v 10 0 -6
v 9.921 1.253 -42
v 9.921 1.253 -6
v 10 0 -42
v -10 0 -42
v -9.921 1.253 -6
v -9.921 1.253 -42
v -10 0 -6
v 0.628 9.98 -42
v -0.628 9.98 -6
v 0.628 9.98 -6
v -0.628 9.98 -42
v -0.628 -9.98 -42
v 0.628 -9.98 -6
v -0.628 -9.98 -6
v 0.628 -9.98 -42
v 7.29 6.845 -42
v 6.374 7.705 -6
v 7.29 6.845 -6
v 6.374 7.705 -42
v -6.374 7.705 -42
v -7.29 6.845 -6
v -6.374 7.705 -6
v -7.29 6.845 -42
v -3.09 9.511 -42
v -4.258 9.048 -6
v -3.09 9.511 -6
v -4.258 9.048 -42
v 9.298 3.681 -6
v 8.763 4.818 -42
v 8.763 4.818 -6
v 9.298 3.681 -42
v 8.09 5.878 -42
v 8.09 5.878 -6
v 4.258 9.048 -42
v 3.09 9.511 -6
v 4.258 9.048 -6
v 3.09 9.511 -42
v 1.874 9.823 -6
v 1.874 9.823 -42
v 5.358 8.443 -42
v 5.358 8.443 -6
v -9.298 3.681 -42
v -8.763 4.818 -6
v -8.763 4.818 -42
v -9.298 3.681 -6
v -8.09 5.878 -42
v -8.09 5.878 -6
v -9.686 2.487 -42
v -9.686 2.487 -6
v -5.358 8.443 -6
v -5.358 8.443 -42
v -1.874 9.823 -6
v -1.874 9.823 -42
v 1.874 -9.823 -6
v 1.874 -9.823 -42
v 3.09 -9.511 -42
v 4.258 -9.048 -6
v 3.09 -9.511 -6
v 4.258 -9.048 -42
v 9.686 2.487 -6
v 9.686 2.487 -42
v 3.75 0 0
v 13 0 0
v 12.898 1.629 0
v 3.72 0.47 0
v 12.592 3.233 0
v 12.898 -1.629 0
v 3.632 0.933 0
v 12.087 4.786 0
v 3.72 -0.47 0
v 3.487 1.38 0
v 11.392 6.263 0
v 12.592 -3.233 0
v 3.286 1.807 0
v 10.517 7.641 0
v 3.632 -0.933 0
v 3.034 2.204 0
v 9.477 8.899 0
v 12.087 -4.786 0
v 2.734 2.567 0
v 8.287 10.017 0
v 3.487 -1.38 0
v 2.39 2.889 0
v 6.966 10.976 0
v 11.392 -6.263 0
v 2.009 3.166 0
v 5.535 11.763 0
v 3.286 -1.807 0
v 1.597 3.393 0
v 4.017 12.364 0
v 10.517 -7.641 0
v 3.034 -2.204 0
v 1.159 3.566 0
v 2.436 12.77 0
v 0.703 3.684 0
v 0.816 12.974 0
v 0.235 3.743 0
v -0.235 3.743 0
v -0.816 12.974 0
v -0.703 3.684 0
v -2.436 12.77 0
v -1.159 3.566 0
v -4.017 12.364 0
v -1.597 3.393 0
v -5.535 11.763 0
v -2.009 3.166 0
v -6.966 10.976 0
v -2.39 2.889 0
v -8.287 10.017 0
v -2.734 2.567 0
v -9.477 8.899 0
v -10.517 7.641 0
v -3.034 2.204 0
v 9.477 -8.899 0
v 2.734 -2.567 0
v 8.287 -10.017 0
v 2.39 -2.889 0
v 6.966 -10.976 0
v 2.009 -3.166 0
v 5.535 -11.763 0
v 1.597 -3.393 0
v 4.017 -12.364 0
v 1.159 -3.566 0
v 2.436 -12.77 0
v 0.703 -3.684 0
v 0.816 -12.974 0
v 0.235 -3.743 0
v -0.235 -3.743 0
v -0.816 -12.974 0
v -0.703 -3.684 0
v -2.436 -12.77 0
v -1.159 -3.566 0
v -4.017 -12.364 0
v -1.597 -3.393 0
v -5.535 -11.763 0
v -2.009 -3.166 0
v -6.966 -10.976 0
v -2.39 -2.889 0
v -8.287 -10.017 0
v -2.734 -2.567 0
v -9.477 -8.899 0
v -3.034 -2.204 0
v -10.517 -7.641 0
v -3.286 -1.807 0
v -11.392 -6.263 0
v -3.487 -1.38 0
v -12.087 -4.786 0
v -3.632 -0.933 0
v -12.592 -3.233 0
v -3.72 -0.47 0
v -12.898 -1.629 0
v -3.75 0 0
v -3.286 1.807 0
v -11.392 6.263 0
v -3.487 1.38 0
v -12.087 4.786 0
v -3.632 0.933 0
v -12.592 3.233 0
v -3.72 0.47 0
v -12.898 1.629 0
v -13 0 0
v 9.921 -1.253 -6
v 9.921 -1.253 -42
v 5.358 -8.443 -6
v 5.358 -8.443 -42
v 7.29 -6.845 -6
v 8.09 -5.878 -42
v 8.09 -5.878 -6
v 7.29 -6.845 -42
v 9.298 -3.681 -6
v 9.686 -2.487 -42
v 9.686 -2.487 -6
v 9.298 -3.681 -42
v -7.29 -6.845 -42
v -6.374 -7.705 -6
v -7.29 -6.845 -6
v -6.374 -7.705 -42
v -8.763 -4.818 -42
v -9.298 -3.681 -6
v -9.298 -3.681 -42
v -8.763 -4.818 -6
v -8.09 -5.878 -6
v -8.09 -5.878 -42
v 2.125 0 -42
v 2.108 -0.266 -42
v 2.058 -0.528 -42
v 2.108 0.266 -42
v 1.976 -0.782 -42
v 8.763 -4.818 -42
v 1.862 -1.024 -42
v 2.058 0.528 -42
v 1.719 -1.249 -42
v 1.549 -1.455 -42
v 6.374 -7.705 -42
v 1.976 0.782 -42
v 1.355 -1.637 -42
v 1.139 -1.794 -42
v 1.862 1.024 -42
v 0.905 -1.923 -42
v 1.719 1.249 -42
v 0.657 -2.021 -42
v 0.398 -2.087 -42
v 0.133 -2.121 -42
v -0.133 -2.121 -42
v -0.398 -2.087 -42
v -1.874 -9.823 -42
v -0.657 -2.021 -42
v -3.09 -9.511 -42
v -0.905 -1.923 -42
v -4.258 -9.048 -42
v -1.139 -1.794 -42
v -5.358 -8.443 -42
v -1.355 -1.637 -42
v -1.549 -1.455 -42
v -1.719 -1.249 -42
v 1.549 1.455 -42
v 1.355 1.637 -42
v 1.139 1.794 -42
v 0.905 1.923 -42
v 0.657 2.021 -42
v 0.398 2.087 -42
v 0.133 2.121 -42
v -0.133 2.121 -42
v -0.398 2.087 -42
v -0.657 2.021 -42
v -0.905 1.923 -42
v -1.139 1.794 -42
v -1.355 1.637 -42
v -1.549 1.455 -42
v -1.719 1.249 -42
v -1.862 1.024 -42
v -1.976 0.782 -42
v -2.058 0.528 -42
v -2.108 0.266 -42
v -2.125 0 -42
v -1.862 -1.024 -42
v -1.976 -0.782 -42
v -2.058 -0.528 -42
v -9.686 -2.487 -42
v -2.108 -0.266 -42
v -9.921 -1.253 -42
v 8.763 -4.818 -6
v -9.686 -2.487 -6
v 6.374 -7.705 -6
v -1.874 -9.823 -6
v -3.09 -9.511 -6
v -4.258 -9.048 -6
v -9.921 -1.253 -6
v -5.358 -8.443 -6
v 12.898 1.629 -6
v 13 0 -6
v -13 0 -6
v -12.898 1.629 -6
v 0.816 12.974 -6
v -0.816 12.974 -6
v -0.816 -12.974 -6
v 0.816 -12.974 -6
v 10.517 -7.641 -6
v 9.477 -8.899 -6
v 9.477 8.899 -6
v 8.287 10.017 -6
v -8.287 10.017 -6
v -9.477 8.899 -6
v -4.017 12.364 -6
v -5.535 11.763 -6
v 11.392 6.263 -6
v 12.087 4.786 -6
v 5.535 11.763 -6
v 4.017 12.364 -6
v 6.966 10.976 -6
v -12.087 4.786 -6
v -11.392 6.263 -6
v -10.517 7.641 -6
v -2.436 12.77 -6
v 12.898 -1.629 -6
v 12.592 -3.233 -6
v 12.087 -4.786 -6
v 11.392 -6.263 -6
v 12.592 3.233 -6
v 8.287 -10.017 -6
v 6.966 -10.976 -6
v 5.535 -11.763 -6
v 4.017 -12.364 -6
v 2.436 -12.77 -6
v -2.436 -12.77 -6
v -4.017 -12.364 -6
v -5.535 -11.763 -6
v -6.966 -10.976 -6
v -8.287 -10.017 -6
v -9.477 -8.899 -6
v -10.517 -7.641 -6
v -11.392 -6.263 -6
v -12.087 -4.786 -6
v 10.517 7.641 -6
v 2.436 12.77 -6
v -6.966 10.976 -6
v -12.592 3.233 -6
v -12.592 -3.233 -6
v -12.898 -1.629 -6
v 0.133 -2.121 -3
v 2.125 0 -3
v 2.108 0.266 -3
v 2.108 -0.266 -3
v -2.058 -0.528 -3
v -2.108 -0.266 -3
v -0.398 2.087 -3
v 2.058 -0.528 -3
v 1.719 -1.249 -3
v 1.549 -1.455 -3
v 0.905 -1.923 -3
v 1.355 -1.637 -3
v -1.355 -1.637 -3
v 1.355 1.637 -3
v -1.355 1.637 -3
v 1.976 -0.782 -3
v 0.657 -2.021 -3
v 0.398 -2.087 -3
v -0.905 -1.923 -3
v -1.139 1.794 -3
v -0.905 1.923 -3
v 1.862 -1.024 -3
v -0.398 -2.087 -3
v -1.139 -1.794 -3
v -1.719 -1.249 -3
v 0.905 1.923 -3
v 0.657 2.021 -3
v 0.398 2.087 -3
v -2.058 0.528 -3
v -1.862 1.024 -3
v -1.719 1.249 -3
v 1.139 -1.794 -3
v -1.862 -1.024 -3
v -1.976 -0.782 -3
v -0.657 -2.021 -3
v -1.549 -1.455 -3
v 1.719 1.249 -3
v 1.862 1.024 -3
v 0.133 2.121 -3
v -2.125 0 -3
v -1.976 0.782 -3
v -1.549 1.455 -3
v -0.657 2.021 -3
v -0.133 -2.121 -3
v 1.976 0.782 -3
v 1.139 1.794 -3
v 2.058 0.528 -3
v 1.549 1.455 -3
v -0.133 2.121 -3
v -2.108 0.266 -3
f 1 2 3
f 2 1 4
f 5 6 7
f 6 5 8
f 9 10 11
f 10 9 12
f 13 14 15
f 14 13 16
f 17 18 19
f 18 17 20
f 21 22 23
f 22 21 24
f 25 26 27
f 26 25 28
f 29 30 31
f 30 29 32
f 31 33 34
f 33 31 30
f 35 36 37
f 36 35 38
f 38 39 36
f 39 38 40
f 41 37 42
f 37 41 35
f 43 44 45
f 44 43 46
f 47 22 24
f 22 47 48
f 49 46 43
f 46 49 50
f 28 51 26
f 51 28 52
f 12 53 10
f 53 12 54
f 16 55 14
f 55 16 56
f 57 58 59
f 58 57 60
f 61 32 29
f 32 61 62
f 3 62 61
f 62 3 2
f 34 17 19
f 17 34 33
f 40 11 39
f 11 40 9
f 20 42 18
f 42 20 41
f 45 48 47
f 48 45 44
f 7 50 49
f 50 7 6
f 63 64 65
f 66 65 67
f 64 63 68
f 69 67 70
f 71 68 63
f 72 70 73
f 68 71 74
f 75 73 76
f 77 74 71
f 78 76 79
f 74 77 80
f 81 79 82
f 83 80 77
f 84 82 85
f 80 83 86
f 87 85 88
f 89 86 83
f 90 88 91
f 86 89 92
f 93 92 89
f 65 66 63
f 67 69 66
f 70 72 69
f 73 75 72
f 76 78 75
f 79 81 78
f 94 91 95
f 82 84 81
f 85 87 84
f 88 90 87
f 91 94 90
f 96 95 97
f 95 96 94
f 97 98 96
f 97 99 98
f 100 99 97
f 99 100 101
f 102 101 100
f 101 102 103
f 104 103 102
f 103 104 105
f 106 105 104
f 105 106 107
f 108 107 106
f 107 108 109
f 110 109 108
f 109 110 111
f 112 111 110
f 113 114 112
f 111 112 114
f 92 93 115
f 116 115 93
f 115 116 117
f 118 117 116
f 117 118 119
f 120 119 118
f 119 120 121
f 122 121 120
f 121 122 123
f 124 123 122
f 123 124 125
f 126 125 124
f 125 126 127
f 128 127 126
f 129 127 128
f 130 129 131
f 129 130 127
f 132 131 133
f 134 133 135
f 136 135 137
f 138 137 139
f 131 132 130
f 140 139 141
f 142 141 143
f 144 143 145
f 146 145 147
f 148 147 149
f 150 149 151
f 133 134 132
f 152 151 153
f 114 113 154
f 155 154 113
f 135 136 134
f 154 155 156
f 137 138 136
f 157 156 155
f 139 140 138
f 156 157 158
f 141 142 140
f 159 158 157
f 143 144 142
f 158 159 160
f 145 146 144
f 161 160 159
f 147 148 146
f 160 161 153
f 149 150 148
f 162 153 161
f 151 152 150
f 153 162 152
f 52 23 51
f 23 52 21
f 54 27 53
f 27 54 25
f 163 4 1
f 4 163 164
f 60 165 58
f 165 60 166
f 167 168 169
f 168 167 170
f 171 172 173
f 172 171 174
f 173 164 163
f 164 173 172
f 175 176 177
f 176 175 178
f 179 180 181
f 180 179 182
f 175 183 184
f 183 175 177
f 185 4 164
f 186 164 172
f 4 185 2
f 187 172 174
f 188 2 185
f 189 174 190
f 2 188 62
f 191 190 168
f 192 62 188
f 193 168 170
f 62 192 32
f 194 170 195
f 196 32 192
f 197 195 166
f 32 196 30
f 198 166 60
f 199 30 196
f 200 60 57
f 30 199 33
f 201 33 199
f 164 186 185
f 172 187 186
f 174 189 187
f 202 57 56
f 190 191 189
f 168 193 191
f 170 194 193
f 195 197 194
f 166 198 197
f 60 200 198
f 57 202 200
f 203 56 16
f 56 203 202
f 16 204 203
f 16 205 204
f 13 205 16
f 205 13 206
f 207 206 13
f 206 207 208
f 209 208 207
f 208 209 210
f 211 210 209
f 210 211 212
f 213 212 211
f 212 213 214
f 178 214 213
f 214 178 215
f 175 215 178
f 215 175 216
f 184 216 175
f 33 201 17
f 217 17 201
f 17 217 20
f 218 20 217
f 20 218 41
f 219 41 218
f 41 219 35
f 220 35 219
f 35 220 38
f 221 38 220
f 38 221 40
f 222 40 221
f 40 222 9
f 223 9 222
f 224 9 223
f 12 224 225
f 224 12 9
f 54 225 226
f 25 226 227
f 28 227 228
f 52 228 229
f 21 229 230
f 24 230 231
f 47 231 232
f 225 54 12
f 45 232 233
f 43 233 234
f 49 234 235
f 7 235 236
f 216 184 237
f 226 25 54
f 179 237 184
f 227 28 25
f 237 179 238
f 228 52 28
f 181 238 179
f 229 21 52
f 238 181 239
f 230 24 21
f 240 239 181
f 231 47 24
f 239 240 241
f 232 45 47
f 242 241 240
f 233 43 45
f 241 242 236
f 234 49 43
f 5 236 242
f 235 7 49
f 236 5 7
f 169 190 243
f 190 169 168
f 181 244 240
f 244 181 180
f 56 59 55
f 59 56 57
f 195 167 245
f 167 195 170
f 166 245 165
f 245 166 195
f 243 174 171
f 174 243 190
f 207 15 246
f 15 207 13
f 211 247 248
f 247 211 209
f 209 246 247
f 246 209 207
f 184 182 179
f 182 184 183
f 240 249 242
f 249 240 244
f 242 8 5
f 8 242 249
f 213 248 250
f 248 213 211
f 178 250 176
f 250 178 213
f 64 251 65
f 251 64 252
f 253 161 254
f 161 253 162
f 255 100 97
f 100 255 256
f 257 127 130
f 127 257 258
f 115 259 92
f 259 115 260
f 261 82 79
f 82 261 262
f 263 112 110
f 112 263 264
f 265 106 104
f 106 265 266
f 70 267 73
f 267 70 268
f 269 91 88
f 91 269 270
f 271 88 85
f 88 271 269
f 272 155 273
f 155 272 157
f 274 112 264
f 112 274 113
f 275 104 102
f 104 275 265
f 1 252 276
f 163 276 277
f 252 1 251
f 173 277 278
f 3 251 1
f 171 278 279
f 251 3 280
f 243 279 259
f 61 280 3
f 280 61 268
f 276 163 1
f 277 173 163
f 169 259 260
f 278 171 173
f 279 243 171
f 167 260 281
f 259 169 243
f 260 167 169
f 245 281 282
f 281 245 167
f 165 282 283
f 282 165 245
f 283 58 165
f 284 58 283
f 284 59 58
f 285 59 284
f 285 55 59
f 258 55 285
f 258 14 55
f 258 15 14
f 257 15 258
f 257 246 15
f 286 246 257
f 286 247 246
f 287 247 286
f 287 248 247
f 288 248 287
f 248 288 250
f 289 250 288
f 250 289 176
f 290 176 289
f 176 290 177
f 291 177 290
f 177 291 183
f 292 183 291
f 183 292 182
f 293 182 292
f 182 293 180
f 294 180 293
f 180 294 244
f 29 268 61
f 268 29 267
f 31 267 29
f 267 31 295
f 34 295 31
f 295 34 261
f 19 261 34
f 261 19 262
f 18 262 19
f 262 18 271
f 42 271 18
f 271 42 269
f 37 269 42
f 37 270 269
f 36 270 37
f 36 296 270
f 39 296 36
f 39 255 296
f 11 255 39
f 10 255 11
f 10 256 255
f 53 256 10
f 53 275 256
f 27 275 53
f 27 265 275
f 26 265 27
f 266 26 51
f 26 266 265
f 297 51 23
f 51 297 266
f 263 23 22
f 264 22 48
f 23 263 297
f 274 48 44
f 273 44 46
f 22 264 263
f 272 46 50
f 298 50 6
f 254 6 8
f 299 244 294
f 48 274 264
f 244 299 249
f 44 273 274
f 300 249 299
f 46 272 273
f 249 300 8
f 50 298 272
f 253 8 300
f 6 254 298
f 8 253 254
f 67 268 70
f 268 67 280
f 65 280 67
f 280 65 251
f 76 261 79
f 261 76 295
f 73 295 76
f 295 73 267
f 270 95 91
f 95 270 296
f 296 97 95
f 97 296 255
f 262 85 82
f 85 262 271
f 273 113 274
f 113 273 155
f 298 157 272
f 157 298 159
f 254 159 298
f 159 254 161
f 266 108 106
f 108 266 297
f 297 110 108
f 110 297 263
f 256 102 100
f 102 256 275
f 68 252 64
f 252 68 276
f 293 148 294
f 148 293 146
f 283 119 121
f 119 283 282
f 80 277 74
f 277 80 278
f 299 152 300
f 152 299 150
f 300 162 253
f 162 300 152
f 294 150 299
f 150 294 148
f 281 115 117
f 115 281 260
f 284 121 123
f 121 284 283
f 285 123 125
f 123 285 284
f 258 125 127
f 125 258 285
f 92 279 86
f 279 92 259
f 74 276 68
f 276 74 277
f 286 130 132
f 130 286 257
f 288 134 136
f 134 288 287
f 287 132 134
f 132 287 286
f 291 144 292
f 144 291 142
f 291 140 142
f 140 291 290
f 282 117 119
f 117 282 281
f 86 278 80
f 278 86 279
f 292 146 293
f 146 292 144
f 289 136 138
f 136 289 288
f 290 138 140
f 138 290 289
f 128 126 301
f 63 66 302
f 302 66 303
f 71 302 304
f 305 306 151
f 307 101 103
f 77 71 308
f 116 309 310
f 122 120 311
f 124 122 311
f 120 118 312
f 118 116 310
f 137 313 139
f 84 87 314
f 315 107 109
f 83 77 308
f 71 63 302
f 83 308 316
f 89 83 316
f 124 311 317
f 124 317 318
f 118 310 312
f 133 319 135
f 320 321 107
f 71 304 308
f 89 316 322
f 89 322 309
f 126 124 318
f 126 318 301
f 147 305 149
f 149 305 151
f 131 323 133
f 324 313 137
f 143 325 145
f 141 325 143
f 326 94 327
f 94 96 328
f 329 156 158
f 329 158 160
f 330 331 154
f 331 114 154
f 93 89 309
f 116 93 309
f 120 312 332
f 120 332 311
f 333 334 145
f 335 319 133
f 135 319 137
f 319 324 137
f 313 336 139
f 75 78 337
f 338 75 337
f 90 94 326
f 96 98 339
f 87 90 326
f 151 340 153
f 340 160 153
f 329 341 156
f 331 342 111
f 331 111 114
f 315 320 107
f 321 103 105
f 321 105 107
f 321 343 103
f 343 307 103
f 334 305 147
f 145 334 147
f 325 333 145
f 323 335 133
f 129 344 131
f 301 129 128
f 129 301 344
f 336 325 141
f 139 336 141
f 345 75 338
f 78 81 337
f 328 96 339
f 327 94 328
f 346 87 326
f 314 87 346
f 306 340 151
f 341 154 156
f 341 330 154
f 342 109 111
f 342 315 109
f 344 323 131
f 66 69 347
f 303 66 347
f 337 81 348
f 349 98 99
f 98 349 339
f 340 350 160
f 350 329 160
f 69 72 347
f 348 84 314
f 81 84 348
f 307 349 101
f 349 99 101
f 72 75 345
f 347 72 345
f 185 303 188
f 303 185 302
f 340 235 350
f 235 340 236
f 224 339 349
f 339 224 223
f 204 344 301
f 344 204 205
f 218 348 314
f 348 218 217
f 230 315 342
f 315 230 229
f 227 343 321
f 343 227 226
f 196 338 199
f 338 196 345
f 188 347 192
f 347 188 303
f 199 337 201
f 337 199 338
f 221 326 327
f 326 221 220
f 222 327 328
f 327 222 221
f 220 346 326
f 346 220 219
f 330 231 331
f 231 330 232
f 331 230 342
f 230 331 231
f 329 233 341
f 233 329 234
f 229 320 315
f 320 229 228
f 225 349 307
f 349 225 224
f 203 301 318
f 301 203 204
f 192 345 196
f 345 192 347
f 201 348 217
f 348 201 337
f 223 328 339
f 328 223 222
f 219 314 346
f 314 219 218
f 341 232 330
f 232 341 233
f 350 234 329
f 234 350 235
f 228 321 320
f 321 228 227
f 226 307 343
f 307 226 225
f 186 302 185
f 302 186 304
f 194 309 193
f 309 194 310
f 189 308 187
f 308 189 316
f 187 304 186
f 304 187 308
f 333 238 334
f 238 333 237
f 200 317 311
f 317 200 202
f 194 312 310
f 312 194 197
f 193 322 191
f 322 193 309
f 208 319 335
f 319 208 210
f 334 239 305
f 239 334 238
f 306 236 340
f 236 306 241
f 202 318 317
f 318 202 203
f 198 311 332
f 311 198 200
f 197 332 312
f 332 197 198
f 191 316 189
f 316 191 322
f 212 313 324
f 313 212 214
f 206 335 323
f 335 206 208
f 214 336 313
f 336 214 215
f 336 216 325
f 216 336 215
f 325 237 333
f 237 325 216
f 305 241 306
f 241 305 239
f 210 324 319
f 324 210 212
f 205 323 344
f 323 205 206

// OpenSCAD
$fn = 50;


difference() {
	union() {
		translate(v = [0, 0, -42.0000000000]) {
			cylinder(h = 42, r = 10.0000000000);
		}
		translate(v = [0, 0, -6.0000000000]) {
			cylinder(h = 6, r = 13.0000000000);
		}
	}
	union() {
		translate(v = [0, 0, 0]) {
			rotate(a = [0, 0, 0]) {
				difference() {
					union() {
						#translate(v = [0, 0, -42.0000000000]) {
							cylinder(h = 42, r = 2.0000000000);
						}
						#translate(v = [0, 0, -3]) {
							cylinder(h = 3, r = 10.0000000000, r1 = 2.1250000000, r2 = 3.7500000000);
						}
						#translate(v = [0, 0, -42.0000000000]) {
							cylinder(h = 42, r = 2.1250000000);
						}
						#translate(v = [0, 0, -42.0000000000]) {
							cylinder(h = 42, r = 2.0000000000);
						}
					}
					union();
				}
			}
		}
	}
}
